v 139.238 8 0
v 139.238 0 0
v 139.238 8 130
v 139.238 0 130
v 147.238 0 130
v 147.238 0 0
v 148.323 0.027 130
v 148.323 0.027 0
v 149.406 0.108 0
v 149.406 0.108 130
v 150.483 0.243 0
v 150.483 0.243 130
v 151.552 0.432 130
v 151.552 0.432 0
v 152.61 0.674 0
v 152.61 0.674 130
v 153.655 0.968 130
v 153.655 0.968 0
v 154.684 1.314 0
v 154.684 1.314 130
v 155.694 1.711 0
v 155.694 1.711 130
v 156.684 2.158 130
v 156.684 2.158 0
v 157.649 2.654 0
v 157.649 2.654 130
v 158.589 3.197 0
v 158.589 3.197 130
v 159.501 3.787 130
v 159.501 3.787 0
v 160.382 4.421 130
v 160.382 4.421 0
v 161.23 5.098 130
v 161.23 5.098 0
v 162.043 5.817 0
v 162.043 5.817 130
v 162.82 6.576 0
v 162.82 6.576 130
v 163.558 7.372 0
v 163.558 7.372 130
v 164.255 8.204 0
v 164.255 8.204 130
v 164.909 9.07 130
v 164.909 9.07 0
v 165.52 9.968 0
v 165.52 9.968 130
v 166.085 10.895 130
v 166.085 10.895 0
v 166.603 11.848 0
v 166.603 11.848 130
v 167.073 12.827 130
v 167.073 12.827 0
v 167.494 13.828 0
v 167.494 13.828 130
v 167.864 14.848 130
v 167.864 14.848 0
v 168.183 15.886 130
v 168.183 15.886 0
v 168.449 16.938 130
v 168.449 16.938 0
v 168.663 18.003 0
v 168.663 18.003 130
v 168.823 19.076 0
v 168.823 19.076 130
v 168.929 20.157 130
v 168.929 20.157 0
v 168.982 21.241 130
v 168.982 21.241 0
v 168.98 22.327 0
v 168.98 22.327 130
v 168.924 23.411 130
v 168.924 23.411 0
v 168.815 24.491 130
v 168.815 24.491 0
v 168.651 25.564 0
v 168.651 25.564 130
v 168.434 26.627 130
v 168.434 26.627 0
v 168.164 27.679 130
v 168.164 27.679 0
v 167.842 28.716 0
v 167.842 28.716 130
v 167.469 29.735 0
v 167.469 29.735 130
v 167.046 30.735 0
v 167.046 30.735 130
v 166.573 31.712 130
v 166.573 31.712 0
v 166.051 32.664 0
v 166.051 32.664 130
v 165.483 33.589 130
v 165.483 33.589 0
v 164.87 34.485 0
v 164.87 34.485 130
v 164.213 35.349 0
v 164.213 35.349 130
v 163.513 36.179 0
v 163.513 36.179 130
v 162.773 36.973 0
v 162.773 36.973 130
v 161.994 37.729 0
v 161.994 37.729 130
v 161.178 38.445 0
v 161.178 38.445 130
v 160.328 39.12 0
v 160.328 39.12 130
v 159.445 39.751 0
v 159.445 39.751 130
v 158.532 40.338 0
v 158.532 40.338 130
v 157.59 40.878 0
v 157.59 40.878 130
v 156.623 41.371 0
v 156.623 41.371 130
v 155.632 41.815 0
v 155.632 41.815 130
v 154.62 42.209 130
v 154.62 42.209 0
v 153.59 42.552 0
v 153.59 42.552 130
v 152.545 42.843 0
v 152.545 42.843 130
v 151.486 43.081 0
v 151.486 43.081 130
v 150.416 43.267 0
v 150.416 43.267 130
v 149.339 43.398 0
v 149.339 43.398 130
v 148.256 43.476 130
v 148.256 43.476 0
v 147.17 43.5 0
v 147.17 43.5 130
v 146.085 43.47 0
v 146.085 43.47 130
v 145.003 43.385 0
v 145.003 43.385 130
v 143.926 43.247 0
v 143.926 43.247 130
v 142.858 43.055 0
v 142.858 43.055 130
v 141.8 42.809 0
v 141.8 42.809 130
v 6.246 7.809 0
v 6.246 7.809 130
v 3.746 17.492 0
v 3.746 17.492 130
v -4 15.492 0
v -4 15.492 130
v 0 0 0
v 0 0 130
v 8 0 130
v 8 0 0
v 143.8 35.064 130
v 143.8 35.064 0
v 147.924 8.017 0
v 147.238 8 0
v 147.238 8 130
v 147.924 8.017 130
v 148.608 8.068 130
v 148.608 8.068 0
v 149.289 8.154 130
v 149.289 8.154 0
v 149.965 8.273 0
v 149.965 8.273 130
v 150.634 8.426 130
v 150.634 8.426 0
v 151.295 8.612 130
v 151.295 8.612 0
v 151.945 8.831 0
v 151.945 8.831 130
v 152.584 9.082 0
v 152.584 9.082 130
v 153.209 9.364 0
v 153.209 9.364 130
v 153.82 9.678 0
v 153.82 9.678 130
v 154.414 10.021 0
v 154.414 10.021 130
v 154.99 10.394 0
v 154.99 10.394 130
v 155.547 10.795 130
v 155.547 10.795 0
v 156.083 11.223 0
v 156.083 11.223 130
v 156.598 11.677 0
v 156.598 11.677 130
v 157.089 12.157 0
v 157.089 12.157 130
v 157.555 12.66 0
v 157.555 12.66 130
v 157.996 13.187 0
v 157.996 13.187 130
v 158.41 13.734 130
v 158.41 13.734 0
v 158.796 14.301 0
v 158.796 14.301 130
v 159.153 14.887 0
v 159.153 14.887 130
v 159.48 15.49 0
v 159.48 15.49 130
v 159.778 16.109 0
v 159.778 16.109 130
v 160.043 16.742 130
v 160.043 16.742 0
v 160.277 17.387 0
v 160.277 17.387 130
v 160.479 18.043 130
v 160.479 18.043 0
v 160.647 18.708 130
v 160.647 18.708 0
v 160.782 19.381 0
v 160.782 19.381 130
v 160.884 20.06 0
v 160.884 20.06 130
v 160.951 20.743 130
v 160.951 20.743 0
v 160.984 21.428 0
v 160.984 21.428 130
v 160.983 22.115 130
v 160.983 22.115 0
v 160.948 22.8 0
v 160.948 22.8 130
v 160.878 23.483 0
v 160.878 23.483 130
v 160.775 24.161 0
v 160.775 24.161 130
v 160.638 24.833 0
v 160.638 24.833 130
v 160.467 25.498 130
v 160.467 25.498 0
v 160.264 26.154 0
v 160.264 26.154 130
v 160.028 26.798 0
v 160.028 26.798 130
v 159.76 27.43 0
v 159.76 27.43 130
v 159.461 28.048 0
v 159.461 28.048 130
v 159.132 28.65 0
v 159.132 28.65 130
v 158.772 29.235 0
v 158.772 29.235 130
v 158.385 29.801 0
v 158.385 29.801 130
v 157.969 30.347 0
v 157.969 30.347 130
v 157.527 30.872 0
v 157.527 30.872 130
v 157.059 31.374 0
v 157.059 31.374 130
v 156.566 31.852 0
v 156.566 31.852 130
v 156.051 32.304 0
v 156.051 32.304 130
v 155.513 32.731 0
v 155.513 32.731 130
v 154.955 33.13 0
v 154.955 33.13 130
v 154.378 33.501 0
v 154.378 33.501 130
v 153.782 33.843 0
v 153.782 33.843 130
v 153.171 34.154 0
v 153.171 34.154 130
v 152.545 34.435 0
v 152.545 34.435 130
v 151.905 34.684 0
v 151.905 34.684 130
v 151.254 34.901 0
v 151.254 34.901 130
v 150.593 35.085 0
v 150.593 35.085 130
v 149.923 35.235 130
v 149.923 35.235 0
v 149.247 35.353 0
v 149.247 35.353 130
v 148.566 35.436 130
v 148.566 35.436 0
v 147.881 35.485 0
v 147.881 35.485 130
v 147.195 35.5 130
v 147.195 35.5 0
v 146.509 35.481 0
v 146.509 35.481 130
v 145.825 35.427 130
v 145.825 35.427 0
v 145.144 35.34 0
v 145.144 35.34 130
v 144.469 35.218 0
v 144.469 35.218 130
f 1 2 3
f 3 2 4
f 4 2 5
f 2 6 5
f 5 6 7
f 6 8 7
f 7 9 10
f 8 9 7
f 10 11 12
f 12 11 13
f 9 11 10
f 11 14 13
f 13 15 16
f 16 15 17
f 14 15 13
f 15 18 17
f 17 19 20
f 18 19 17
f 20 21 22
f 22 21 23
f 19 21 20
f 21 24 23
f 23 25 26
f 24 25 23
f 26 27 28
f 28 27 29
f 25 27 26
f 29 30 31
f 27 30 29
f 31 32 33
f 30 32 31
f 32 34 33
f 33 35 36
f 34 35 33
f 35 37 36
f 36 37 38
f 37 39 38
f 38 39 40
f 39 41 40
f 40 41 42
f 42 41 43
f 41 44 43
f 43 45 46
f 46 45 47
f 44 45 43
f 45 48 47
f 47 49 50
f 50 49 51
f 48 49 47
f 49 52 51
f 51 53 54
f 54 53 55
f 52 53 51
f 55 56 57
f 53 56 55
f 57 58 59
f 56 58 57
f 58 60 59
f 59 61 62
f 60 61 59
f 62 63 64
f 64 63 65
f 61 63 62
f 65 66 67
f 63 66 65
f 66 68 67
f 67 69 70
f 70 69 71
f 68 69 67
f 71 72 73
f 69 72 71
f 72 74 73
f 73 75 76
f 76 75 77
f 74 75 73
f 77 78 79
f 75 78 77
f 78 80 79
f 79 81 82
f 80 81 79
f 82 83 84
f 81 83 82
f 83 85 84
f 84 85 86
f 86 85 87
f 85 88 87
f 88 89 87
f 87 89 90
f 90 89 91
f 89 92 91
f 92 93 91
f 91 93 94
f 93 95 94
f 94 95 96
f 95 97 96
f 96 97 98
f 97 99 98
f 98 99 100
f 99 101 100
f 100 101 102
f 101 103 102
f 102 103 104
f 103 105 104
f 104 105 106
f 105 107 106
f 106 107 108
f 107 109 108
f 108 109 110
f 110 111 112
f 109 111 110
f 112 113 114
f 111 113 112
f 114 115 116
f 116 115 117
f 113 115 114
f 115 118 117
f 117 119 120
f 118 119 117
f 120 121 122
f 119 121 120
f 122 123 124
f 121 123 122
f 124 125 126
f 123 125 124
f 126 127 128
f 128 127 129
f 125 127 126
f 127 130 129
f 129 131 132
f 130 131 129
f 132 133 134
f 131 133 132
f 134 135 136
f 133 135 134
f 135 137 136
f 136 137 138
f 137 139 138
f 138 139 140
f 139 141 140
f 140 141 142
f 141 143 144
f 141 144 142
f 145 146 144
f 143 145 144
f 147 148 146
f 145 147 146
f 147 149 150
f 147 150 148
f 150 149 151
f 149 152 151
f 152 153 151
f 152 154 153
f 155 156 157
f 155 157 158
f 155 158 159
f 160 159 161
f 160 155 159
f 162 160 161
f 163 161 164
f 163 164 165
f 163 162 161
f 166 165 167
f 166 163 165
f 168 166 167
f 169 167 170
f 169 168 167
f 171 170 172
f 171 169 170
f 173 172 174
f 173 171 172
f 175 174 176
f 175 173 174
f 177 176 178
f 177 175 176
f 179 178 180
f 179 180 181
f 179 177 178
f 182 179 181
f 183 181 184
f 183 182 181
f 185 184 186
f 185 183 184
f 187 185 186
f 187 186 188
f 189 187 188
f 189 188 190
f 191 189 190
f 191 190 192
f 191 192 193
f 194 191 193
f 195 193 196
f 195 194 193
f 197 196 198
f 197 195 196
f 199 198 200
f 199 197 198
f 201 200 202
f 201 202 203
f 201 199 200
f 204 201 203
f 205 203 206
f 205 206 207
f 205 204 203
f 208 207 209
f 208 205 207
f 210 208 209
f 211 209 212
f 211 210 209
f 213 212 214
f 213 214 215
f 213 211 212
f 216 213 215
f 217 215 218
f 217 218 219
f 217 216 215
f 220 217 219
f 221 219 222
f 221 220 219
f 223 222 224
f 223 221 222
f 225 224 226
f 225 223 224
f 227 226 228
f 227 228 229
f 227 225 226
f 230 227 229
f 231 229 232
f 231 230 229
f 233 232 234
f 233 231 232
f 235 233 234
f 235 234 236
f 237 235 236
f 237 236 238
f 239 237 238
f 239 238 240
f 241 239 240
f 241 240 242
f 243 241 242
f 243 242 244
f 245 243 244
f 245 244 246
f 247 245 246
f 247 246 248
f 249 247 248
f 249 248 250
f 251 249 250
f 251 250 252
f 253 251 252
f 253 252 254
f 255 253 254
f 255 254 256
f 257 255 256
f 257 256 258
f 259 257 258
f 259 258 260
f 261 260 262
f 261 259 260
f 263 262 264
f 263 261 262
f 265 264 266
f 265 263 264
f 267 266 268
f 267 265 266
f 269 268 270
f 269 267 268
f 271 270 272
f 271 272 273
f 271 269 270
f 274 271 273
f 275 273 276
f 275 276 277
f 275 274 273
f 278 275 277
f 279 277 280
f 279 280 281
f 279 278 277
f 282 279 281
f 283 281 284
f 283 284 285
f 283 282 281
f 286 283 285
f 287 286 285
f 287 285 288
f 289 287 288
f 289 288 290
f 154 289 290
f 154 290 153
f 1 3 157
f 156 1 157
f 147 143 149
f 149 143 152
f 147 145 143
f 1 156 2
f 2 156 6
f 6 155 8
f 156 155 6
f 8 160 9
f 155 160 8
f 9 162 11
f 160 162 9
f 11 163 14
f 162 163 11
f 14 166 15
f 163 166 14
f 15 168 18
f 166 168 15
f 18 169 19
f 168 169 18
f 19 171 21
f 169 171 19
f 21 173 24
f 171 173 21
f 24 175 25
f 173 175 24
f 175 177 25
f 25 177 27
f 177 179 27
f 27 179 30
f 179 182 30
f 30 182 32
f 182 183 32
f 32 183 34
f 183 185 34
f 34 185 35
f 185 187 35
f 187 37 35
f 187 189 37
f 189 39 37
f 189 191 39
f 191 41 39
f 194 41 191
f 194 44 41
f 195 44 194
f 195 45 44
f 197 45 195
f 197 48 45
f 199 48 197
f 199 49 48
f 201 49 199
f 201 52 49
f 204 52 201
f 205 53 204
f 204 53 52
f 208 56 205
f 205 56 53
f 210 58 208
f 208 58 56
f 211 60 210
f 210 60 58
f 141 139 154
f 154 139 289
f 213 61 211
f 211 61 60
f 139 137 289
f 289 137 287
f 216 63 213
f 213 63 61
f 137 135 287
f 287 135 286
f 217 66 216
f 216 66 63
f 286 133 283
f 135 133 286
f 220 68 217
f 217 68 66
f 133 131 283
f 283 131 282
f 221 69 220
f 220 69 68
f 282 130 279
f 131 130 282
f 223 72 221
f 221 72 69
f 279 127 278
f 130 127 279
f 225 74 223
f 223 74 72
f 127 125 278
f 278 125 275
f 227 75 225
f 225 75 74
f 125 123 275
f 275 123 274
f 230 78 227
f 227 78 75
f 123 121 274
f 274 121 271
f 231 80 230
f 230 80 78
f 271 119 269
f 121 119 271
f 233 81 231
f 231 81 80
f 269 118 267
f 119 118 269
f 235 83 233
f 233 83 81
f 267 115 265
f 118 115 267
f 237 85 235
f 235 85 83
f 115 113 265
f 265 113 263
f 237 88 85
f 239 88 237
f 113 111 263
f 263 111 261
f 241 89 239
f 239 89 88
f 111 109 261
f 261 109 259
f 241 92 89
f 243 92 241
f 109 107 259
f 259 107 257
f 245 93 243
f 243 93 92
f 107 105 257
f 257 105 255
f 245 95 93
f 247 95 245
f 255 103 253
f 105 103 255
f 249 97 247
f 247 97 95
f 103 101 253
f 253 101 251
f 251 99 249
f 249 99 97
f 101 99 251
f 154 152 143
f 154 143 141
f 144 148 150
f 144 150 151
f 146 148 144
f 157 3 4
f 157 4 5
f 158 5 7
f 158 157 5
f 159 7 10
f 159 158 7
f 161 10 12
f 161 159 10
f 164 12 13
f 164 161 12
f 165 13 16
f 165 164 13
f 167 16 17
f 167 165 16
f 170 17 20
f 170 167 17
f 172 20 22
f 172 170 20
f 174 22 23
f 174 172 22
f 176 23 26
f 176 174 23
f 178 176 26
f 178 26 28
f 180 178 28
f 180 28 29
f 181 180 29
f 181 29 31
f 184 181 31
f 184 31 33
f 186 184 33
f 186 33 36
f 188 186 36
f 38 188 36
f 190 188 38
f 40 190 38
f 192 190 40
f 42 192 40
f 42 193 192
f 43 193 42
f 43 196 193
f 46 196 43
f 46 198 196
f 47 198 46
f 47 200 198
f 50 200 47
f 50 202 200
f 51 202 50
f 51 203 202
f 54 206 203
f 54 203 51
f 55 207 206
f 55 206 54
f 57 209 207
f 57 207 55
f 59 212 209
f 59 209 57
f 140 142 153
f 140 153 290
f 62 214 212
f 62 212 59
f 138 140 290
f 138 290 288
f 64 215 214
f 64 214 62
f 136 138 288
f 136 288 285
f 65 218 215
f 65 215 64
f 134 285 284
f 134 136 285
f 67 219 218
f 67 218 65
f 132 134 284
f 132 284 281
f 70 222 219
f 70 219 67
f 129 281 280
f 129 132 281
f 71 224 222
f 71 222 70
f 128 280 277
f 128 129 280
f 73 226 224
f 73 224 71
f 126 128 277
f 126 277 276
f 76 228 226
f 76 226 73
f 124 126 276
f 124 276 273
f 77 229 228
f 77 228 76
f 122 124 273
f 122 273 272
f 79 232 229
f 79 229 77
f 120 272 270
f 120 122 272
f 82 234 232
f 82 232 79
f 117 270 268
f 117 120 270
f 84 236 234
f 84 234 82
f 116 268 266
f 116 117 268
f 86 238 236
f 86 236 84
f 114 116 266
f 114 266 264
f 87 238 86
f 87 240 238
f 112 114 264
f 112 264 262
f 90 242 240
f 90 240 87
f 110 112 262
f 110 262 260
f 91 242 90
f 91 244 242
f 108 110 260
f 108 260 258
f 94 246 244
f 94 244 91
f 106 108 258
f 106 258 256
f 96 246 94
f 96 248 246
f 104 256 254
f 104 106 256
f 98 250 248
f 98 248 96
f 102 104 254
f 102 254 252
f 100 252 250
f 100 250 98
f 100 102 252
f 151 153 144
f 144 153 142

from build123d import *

# Parameters (mm, degrees)
PAD_DEPTH = 130


with BuildPart() as part:
    # Sketch → Pad (new body)
    with BuildSketch(Plane.XY):
        with BuildLine():
            Line((0, 0), (8, 0))
            Line((8, 0), (143.800384, 35.063508))
            ThreePointArc((147.237874, 8), (160.878343, 23.482615), (143.800384, 35.063508))
            Line((139.237875, 8), (147.237874, 8))
            Line((139.237875, 8), (139.237875, 0))
            Line((139.237875, 0), (147.237875, 0))
            ThreePointArc((147.237875, 0), (168.81458, 24.49065), (141.800384, 42.809475))
            Line((6.245967, 7.809475), (141.800384, 42.809475))
            Line((3.745967, 17.491933), (6.245967, 7.809475))
            Line((-4, 15.491933), (3.745967, 17.491933))
            Line((0, 0), (-4, 15.491933))
        make_face()
    extrude(amount=PAD_DEPTH)


solid = part.part
